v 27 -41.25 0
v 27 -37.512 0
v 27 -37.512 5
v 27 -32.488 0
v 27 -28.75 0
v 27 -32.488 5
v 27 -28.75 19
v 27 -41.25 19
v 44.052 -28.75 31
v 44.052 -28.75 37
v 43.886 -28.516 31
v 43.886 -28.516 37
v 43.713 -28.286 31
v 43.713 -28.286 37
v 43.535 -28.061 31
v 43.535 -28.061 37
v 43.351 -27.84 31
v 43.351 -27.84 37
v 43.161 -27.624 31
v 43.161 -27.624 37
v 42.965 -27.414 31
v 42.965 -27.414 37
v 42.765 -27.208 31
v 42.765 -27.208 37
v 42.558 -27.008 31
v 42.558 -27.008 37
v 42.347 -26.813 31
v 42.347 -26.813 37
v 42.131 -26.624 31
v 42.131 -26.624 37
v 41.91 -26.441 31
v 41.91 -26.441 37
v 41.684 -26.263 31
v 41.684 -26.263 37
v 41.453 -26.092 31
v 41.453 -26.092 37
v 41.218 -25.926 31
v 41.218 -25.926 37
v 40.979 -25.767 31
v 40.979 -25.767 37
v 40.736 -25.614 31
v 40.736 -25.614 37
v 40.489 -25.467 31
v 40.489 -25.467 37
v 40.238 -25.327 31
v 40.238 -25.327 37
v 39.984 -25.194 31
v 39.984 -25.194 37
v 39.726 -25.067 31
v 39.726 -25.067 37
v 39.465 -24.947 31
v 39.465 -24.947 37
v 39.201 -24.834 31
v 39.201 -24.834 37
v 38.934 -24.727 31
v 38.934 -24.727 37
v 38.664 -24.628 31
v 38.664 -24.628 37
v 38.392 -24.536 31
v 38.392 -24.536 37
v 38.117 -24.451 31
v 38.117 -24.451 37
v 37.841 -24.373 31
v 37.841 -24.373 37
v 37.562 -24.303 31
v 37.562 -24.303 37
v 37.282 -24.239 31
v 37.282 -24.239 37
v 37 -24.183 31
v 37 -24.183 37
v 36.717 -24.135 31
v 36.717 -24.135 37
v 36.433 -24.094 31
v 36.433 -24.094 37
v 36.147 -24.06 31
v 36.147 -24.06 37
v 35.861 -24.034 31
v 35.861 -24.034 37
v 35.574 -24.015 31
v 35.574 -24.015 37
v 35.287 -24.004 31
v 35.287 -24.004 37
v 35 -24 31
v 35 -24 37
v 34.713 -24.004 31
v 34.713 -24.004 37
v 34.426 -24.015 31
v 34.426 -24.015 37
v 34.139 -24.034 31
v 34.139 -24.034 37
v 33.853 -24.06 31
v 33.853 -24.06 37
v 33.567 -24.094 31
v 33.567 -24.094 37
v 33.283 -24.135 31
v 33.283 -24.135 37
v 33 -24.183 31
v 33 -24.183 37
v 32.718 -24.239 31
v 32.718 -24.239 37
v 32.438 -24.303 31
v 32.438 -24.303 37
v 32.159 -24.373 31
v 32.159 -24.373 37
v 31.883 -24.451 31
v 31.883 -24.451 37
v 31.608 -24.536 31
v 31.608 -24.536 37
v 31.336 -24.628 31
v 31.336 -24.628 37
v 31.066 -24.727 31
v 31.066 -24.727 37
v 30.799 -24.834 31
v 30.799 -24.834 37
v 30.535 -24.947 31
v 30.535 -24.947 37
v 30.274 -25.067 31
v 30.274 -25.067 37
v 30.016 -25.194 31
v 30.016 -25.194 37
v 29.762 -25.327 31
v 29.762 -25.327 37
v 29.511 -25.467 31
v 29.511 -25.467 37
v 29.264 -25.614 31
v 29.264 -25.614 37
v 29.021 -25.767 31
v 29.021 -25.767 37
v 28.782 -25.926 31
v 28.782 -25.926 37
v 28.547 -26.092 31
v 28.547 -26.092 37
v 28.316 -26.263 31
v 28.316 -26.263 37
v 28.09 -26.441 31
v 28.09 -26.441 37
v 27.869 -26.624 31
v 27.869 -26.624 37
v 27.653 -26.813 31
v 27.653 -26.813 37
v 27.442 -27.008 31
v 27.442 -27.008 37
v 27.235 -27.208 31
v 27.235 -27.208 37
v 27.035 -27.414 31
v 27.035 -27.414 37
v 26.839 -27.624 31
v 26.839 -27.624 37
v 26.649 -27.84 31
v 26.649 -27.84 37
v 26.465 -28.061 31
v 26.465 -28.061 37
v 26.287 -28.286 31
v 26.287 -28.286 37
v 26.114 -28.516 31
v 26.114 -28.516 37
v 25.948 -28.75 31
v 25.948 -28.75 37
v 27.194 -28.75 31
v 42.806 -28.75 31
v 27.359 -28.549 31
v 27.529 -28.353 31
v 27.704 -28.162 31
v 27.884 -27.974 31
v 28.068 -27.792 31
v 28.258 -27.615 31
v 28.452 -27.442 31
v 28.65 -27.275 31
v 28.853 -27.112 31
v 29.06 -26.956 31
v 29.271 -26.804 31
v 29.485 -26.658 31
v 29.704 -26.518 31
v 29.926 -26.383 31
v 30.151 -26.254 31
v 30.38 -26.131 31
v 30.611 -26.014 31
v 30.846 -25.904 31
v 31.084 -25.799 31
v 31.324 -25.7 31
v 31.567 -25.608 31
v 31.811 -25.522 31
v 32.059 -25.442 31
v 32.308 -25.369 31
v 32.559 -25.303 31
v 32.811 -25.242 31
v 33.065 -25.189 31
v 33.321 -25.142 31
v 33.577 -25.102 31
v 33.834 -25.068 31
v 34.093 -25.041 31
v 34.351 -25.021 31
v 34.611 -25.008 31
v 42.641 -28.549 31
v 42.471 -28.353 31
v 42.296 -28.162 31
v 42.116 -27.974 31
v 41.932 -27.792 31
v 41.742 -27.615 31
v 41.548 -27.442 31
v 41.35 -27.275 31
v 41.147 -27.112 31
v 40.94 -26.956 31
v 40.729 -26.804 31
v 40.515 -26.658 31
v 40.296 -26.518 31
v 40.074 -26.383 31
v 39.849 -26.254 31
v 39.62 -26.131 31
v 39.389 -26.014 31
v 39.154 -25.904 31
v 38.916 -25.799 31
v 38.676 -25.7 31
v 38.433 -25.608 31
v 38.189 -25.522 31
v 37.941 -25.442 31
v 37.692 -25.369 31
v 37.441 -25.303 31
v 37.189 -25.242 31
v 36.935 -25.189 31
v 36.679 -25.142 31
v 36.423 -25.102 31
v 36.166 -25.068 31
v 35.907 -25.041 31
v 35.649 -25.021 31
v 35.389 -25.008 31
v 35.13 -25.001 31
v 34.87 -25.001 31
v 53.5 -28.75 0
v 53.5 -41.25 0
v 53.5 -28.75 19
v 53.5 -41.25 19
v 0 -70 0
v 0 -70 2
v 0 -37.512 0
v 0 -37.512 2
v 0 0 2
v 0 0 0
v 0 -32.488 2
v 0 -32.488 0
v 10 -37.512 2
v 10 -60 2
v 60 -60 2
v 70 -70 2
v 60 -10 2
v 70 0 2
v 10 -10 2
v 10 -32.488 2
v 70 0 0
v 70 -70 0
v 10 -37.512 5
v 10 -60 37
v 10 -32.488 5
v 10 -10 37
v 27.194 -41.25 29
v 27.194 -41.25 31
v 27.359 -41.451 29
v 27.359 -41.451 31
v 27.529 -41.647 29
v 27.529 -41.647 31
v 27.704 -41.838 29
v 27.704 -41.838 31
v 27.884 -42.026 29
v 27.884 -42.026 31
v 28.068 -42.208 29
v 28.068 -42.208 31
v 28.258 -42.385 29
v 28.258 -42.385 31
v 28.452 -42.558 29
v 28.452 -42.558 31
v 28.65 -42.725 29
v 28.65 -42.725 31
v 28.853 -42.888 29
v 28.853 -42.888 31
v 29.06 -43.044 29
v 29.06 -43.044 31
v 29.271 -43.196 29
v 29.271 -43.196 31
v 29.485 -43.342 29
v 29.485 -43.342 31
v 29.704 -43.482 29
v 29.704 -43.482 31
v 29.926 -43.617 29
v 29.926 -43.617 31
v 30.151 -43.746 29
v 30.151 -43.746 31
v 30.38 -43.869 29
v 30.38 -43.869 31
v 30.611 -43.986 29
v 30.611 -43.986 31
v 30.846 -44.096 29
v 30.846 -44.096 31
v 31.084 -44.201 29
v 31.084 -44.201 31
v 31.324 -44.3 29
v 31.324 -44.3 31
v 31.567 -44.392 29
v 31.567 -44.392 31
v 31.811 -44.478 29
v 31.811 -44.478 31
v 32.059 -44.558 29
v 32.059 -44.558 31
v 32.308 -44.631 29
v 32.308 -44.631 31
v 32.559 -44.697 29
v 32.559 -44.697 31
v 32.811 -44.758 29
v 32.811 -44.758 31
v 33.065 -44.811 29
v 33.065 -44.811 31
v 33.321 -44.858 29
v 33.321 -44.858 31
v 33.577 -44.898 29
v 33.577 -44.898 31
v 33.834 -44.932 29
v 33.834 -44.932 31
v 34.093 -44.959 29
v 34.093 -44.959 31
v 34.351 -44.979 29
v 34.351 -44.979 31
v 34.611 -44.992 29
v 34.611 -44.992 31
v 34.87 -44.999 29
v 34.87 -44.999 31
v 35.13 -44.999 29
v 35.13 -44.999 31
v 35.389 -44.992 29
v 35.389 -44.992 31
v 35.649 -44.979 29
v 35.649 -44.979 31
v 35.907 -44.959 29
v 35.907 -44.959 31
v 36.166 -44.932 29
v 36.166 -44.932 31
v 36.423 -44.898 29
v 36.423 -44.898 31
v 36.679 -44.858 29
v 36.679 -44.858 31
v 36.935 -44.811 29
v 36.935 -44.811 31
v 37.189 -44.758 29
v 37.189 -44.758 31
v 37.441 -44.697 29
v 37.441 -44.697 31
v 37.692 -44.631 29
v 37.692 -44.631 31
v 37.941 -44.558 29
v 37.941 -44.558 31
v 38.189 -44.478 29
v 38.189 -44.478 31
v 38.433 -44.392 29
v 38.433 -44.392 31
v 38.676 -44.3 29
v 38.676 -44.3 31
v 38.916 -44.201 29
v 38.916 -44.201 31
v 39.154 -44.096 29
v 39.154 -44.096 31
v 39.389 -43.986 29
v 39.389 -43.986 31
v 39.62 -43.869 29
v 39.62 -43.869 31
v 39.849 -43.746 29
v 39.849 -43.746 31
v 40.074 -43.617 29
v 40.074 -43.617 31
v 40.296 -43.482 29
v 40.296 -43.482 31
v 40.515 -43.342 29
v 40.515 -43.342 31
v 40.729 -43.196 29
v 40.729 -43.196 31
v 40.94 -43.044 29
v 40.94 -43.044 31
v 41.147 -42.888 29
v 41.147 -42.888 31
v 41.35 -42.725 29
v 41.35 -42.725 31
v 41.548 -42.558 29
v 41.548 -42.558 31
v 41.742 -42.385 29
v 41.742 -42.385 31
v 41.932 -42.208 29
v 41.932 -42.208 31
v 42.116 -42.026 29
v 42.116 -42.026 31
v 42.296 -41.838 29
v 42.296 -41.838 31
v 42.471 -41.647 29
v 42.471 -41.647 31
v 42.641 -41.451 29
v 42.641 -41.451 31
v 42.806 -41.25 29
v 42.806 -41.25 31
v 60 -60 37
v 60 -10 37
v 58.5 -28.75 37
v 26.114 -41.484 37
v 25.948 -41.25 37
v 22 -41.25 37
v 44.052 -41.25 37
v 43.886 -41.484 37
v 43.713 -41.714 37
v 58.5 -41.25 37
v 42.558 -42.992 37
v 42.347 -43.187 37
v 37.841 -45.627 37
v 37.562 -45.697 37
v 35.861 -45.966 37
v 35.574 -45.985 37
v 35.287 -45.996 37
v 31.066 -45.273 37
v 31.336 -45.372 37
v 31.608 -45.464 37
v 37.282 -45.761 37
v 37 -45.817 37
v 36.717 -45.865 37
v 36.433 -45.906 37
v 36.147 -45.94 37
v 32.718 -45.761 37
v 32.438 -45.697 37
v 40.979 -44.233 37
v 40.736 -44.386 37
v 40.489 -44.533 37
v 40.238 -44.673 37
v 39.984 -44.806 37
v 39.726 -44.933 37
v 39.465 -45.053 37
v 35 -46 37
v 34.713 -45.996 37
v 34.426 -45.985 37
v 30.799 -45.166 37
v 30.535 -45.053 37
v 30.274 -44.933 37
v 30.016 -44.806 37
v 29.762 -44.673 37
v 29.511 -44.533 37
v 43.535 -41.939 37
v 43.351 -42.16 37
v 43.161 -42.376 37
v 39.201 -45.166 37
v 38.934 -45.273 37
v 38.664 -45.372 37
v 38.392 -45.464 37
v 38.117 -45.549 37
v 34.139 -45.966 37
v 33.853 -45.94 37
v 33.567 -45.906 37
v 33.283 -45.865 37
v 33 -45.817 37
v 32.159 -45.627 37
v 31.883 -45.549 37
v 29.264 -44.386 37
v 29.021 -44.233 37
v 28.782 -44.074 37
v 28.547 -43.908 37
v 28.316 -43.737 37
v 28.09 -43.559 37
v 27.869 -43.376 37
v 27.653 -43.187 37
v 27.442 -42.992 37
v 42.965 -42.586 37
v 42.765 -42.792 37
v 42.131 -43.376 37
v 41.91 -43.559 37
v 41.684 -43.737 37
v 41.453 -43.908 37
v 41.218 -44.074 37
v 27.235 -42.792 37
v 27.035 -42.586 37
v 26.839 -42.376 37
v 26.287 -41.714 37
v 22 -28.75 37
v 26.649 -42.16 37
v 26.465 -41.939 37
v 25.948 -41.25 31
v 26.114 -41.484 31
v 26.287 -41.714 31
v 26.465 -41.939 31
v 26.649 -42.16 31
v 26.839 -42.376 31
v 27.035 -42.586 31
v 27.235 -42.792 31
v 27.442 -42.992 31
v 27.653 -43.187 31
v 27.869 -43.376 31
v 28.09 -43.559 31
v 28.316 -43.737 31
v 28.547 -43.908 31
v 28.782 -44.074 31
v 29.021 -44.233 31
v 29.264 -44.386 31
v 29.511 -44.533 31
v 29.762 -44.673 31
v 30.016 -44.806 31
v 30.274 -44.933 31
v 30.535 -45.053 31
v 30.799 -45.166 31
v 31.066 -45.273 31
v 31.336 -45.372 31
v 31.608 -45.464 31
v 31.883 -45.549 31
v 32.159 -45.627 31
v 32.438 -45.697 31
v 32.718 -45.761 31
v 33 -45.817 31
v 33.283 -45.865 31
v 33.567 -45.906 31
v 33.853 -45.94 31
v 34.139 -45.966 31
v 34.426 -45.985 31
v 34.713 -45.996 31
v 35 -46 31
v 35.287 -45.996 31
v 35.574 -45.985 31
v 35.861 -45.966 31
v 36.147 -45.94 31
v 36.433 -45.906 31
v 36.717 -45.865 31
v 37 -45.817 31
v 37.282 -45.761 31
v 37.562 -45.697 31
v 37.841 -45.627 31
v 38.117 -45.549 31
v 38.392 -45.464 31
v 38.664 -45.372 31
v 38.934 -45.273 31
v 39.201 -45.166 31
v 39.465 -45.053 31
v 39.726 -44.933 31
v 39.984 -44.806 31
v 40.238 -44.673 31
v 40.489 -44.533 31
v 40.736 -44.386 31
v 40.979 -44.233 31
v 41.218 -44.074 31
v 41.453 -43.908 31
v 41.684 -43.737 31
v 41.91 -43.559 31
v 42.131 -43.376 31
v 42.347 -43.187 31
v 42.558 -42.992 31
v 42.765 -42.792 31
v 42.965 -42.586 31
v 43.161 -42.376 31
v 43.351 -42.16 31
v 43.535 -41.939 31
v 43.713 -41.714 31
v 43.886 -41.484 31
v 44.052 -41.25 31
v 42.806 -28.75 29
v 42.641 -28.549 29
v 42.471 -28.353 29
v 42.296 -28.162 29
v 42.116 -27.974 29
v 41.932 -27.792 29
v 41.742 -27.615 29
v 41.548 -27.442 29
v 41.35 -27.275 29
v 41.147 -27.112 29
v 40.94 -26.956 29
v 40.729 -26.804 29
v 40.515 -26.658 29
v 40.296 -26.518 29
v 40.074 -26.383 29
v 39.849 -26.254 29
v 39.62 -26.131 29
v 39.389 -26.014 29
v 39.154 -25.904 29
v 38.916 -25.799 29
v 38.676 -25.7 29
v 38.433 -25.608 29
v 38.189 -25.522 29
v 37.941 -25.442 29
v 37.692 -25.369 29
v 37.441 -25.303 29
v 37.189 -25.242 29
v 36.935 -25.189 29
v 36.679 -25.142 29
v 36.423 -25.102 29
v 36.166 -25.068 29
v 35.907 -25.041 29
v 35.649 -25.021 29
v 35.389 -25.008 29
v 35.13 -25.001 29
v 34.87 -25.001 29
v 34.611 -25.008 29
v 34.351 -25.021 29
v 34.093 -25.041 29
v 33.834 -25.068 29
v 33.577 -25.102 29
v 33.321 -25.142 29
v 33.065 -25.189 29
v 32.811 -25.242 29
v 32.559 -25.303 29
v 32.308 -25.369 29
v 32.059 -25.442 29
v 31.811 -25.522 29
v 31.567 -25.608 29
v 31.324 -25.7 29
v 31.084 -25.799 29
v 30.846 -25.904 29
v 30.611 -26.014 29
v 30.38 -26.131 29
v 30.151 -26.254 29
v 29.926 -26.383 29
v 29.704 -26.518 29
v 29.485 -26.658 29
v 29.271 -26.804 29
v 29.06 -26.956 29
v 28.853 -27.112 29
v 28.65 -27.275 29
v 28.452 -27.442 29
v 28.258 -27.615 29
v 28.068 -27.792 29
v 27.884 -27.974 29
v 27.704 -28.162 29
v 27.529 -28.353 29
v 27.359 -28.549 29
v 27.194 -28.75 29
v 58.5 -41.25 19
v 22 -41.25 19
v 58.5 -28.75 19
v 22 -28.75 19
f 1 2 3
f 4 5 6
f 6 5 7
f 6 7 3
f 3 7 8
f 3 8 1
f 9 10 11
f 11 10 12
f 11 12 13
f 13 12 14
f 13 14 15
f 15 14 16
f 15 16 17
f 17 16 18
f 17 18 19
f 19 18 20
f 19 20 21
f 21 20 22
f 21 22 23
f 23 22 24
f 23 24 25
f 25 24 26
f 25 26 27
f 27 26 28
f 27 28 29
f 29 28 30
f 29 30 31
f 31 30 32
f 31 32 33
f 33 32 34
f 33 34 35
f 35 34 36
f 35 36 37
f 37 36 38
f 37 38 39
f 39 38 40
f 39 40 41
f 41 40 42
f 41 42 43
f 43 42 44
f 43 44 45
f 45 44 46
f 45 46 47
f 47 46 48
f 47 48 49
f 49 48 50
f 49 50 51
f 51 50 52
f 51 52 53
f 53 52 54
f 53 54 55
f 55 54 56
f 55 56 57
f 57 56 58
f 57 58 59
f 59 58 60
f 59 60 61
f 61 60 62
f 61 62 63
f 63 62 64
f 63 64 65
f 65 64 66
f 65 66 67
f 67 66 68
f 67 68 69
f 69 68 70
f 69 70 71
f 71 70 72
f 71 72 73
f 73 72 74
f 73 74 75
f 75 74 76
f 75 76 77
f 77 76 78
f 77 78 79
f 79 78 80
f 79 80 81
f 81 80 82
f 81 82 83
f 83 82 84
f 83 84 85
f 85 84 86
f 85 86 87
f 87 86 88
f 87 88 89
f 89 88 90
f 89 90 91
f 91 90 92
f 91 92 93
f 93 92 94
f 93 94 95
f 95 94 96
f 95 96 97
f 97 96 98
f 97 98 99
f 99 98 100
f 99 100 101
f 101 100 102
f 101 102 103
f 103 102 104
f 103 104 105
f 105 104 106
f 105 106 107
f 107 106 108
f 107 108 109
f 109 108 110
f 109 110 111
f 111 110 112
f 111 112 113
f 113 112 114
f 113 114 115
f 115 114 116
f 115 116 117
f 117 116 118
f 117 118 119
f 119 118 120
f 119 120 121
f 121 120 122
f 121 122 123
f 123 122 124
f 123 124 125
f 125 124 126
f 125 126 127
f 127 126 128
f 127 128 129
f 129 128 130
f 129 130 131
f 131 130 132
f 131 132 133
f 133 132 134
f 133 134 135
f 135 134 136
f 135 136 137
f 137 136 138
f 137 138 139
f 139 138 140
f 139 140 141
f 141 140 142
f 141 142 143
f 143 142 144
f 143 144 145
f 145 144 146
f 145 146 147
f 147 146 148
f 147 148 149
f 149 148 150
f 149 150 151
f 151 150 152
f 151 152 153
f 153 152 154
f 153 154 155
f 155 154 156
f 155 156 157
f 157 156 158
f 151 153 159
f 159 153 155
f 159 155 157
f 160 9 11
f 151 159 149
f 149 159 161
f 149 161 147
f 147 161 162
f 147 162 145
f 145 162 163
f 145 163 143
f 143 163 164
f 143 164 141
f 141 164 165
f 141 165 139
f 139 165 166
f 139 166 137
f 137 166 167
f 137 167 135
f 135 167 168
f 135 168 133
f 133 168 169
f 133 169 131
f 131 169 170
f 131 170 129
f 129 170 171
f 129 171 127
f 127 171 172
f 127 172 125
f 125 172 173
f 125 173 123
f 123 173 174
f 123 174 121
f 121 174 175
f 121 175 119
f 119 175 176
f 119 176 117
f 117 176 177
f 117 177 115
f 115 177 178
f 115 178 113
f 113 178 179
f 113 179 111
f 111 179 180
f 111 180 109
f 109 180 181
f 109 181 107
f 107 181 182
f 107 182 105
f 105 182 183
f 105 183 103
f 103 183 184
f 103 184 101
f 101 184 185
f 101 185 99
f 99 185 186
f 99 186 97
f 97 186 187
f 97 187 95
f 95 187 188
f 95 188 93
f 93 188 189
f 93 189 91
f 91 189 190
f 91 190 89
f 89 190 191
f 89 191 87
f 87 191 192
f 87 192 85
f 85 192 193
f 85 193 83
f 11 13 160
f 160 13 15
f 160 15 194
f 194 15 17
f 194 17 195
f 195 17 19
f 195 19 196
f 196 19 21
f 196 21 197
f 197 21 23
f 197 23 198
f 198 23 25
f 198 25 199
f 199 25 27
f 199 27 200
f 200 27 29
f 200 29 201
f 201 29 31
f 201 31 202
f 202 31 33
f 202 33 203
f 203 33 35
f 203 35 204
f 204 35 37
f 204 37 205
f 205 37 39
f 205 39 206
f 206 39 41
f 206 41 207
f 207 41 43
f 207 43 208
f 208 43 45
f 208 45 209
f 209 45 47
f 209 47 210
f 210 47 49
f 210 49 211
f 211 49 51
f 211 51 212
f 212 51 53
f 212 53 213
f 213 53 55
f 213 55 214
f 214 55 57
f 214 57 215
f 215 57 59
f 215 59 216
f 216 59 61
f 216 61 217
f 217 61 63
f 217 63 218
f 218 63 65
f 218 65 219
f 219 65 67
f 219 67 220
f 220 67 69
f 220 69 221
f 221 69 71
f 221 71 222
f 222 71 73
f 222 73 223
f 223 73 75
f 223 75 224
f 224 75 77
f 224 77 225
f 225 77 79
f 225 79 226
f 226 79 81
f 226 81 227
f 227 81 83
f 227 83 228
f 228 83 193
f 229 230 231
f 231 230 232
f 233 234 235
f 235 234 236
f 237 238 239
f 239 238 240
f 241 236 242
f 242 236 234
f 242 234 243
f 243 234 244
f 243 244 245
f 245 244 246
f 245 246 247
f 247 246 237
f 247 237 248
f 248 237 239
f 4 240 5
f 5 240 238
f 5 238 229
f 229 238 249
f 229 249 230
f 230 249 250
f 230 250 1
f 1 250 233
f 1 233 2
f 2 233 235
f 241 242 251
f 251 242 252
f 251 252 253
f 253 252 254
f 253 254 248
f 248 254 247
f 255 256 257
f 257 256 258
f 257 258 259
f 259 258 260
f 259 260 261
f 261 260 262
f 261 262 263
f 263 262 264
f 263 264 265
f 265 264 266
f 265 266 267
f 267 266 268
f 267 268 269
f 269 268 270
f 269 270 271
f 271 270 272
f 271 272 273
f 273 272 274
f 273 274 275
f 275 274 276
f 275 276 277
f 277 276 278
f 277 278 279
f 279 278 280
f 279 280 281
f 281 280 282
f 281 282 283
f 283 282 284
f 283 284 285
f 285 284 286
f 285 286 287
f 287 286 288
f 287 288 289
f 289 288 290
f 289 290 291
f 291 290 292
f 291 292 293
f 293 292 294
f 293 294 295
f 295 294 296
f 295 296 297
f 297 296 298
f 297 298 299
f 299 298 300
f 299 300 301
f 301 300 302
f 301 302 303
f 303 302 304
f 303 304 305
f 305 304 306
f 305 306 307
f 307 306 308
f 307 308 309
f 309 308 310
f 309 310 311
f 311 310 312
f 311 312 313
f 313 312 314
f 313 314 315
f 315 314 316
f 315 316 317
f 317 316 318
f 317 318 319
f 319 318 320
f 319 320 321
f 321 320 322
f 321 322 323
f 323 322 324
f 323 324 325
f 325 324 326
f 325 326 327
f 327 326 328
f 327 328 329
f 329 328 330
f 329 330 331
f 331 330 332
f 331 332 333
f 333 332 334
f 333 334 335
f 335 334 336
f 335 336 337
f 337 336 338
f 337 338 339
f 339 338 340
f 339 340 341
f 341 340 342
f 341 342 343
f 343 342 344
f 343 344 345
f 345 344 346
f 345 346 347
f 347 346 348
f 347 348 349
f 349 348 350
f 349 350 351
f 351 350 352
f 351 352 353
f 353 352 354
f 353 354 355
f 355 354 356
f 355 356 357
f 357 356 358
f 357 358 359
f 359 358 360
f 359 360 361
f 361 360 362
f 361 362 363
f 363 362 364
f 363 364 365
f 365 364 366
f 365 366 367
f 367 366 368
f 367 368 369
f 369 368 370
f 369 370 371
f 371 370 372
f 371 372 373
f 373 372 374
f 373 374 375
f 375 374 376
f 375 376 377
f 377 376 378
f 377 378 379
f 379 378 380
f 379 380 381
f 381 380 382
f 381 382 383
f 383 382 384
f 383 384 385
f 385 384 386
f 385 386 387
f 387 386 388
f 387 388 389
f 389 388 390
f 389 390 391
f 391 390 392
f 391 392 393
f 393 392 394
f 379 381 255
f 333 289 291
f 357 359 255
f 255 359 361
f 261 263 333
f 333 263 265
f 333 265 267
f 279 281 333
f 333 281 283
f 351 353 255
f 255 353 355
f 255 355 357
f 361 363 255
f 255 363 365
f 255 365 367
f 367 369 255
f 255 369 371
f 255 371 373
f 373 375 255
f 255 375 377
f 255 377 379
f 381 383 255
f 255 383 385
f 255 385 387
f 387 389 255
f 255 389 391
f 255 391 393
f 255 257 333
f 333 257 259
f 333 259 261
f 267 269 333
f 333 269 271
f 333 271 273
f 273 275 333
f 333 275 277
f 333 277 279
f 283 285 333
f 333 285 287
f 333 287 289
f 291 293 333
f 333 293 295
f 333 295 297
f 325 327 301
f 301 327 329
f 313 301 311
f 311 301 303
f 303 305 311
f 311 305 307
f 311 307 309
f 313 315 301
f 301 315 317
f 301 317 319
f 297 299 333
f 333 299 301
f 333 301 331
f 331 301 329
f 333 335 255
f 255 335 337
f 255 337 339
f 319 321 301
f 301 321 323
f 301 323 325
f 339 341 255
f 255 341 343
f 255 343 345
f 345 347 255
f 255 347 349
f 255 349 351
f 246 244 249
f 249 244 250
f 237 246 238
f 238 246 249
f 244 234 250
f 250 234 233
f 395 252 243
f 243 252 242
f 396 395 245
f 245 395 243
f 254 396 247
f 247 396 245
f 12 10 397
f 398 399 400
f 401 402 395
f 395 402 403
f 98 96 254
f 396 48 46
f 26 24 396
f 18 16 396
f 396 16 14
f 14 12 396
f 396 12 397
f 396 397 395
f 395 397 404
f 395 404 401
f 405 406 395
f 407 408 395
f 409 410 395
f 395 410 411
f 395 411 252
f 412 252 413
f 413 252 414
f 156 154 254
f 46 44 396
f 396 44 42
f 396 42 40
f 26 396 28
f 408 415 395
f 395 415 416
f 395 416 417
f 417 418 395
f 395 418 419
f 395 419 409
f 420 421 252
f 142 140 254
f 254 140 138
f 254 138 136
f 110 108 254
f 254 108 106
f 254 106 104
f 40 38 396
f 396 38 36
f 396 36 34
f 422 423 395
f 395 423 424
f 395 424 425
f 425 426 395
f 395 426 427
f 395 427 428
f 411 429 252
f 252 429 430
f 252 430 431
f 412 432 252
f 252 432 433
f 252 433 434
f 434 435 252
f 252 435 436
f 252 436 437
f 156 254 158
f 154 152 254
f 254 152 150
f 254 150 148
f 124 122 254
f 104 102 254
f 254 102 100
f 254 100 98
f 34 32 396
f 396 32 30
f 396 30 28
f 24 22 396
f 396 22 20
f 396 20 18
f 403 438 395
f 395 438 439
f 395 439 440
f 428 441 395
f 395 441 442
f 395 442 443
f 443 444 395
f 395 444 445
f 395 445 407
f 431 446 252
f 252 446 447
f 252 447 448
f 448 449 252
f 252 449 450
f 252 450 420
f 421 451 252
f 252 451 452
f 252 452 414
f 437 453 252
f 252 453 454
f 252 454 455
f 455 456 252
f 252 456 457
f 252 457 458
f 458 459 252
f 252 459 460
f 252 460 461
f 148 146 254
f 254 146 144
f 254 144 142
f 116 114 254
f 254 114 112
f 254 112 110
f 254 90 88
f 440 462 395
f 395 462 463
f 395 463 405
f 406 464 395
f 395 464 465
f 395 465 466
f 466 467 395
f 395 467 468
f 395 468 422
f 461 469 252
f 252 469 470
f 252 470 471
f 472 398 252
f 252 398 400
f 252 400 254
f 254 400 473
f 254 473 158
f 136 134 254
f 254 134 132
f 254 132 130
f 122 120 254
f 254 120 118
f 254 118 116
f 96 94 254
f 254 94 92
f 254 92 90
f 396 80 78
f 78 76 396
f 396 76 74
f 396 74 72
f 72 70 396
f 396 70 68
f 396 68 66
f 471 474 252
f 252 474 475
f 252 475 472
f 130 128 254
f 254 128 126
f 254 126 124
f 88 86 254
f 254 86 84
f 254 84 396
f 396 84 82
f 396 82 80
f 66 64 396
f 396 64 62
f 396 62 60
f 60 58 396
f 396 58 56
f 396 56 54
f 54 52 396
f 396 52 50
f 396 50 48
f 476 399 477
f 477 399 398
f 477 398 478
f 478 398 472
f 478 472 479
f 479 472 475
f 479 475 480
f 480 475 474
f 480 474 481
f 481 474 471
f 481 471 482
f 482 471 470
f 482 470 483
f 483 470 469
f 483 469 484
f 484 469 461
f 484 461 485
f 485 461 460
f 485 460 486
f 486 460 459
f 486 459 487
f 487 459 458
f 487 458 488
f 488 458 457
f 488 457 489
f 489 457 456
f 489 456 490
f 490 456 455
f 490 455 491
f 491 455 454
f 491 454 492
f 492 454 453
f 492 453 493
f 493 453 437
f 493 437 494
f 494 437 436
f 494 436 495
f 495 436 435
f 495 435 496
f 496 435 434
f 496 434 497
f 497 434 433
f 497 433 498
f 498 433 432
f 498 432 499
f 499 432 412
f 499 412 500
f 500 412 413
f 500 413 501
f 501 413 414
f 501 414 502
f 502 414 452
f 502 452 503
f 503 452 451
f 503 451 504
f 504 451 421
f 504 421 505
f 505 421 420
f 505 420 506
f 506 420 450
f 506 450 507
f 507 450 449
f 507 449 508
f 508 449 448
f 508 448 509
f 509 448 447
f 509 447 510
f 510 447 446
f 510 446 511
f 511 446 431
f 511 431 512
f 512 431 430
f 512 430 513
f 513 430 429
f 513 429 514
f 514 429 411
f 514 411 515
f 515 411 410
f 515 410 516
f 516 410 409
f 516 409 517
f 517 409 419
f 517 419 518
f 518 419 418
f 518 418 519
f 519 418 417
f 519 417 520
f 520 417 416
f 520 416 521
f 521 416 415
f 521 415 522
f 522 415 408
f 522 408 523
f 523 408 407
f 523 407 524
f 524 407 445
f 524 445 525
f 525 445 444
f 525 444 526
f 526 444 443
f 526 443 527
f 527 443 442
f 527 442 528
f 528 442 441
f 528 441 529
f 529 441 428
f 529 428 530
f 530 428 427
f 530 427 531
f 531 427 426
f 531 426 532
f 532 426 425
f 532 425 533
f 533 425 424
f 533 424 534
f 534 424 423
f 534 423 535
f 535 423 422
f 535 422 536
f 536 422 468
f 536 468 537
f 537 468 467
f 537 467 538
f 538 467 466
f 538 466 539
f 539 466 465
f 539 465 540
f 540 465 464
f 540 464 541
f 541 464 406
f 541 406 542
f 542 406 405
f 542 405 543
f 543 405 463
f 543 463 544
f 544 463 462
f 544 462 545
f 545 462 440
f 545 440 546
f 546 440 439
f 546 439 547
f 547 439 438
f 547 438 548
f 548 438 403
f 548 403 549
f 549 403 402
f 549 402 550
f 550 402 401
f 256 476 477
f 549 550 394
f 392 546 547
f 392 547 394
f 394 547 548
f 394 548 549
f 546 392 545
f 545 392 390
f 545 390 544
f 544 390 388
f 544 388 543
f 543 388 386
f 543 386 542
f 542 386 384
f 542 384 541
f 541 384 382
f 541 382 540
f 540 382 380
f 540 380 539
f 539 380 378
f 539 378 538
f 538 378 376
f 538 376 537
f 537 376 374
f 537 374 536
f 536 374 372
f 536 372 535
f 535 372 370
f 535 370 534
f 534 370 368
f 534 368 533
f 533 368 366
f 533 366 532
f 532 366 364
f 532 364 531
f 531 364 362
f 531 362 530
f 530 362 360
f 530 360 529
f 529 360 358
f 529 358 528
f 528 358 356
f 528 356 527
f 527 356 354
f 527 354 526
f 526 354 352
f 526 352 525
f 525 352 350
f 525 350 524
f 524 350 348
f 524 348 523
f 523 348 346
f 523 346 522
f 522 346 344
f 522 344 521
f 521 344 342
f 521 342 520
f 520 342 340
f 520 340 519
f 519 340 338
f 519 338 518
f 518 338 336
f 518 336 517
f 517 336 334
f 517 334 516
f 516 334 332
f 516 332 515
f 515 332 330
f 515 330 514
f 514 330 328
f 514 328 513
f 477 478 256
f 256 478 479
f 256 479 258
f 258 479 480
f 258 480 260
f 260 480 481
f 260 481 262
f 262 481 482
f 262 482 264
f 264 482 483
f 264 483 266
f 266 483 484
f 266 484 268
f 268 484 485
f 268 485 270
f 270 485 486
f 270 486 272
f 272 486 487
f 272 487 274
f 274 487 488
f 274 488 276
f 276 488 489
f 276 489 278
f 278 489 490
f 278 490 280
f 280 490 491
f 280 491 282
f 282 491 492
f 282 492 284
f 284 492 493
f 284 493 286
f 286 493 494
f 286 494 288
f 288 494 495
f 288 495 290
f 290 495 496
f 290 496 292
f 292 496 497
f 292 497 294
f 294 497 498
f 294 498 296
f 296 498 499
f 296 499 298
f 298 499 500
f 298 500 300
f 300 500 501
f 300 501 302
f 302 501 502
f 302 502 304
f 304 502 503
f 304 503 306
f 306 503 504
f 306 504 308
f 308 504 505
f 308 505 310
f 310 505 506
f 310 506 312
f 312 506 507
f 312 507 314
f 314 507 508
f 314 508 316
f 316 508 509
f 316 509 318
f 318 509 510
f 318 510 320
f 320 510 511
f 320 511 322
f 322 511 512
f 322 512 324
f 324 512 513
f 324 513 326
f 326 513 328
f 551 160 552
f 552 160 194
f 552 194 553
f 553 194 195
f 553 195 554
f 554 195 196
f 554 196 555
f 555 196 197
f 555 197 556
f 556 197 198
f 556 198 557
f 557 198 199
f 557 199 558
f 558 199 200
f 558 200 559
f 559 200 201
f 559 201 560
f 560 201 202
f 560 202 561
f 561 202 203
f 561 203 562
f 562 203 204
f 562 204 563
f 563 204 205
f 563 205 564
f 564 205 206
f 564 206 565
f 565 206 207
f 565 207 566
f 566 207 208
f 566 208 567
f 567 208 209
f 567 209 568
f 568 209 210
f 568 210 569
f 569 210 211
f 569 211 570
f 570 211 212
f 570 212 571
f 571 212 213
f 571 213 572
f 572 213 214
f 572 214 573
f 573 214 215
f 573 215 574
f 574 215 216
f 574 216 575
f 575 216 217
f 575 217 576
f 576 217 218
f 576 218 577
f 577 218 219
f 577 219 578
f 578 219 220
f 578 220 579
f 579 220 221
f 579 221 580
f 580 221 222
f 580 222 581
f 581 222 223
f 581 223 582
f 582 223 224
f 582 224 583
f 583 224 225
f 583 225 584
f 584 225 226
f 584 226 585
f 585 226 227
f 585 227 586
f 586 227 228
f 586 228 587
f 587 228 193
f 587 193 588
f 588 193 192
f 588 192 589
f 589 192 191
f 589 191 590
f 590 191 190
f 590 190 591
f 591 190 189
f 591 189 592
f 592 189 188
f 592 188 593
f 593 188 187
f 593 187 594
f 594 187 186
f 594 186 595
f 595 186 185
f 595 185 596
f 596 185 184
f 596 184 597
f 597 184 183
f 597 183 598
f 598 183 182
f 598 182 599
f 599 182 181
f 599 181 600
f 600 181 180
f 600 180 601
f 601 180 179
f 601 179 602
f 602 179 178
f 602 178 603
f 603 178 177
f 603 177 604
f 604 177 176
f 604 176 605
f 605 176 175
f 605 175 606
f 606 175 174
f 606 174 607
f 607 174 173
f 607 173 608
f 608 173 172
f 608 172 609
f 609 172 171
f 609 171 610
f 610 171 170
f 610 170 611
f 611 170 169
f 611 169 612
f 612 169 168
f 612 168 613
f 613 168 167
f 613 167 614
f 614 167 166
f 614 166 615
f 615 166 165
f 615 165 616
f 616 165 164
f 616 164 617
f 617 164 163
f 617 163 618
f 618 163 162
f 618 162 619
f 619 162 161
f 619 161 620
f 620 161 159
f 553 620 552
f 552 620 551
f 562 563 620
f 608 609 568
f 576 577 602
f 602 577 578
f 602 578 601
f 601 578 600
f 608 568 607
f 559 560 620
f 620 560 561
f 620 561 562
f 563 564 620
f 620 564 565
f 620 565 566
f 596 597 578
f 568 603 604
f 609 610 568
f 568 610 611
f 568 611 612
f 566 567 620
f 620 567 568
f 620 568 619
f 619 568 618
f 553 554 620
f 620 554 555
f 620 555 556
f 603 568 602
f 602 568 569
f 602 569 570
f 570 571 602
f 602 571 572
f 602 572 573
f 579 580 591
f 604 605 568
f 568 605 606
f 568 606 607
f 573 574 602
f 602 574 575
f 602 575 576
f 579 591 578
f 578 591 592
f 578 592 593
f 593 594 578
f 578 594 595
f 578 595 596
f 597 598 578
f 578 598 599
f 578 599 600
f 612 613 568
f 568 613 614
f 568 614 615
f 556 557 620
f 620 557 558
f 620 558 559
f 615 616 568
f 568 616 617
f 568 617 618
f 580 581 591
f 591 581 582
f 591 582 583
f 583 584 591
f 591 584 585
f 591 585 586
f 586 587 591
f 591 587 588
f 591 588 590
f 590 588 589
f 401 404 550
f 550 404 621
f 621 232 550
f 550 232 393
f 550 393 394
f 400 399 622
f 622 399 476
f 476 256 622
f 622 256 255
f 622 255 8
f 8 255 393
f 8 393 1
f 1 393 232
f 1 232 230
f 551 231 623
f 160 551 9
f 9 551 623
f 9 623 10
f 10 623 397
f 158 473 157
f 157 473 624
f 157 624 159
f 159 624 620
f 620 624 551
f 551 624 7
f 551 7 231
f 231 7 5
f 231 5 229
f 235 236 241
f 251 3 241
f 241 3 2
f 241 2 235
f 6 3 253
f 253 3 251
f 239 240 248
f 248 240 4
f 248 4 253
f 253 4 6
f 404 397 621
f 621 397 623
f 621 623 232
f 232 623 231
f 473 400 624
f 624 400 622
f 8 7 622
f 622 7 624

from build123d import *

# Parameters (mm, degrees)
SKETCH1_W           = 70
SKETCH1_H           = 70
BOSS_EXTRUDE1_DEPTH = 2
SKETCH2_W           = 50
SKETCH2_H           = 50
BOSS_EXTRUDE2_DEPTH = 35
SKETCH3_R           = 11
CUT_EXTRUDE1_DEPTH  = 6
SKETCH4_R           = 10
CUT_EXTRUDE2_DEPTH  = 2
SKETCH5_W           = 26.5
SKETCH5_H           = 12.5
CUT_EXTRUDE3_DEPTH  = 106.683489723
SKETCH7_W           = 5
SKETCH7_H           = 5.02305645
CUT_EXTRUDE4_DEPTH  = 96.557574268
SKETCH8_W           = 5
SKETCH8_H           = 12.5
CUT_EXTRUDE5_DEPTH  = 18


with BuildPart() as part:
    # Sketch1 → Boss-Extrude1 (new body)
    with BuildSketch(Plane.XY):
        with Locations((35, -35)):
            Rectangle(SKETCH1_W, SKETCH1_H)
    extrude(amount=BOSS_EXTRUDE1_DEPTH)

    # Sketch2 → Boss-Extrude2 (add)
    with BuildSketch(Plane.XY.offset(2)):
        with Locations((35, -35)):
            Rectangle(SKETCH2_W, SKETCH2_H)
    extrude(amount=BOSS_EXTRUDE2_DEPTH)

    # Sketch3 → Cut-Extrude1 (cut)
    with BuildSketch(Plane.XY.offset(37)):
        with Locations((35, -35)):
            Circle(SKETCH3_R)
    extrude(amount=-CUT_EXTRUDE1_DEPTH, mode=Mode.SUBTRACT)

    # Sketch4 → Cut-Extrude2 (cut)
    with BuildSketch(Plane.XY.offset(31)):
        with Locations((35, -35)):
            Circle(SKETCH4_R)
    extrude(amount=-CUT_EXTRUDE2_DEPTH, mode=Mode.SUBTRACT)

    # Sketch5 → Cut-Extrude3 (cut, through all)
    with BuildSketch(Plane.XY.offset(37)):
        with Locations((40.25, -35)):
            Rectangle(SKETCH5_W, SKETCH5_H)
    extrude(amount=-CUT_EXTRUDE3_DEPTH, mode=Mode.SUBTRACT)

    # Sketch7 → Cut-Extrude4 (cut, through all)
    with BuildSketch(Plane.ZY.offset(-53.5)):
        with Locations((2.5, -35)):
            Rectangle(SKETCH7_W, SKETCH7_H)
    extrude(amount=CUT_EXTRUDE4_DEPTH, mode=Mode.SUBTRACT)

    # Sketch8 → Cut-Extrude5 (cut)
    with BuildSketch(Plane.XY.offset(37)):
        with Locations((56, -35)):
            Rectangle(SKETCH8_W, SKETCH8_H)
        with Locations((24.5, -35)):
            Rectangle(SKETCH8_W, SKETCH8_H)
    extrude(amount=-CUT_EXTRUDE5_DEPTH, mode=Mode.SUBTRACT)


solid = part.part
